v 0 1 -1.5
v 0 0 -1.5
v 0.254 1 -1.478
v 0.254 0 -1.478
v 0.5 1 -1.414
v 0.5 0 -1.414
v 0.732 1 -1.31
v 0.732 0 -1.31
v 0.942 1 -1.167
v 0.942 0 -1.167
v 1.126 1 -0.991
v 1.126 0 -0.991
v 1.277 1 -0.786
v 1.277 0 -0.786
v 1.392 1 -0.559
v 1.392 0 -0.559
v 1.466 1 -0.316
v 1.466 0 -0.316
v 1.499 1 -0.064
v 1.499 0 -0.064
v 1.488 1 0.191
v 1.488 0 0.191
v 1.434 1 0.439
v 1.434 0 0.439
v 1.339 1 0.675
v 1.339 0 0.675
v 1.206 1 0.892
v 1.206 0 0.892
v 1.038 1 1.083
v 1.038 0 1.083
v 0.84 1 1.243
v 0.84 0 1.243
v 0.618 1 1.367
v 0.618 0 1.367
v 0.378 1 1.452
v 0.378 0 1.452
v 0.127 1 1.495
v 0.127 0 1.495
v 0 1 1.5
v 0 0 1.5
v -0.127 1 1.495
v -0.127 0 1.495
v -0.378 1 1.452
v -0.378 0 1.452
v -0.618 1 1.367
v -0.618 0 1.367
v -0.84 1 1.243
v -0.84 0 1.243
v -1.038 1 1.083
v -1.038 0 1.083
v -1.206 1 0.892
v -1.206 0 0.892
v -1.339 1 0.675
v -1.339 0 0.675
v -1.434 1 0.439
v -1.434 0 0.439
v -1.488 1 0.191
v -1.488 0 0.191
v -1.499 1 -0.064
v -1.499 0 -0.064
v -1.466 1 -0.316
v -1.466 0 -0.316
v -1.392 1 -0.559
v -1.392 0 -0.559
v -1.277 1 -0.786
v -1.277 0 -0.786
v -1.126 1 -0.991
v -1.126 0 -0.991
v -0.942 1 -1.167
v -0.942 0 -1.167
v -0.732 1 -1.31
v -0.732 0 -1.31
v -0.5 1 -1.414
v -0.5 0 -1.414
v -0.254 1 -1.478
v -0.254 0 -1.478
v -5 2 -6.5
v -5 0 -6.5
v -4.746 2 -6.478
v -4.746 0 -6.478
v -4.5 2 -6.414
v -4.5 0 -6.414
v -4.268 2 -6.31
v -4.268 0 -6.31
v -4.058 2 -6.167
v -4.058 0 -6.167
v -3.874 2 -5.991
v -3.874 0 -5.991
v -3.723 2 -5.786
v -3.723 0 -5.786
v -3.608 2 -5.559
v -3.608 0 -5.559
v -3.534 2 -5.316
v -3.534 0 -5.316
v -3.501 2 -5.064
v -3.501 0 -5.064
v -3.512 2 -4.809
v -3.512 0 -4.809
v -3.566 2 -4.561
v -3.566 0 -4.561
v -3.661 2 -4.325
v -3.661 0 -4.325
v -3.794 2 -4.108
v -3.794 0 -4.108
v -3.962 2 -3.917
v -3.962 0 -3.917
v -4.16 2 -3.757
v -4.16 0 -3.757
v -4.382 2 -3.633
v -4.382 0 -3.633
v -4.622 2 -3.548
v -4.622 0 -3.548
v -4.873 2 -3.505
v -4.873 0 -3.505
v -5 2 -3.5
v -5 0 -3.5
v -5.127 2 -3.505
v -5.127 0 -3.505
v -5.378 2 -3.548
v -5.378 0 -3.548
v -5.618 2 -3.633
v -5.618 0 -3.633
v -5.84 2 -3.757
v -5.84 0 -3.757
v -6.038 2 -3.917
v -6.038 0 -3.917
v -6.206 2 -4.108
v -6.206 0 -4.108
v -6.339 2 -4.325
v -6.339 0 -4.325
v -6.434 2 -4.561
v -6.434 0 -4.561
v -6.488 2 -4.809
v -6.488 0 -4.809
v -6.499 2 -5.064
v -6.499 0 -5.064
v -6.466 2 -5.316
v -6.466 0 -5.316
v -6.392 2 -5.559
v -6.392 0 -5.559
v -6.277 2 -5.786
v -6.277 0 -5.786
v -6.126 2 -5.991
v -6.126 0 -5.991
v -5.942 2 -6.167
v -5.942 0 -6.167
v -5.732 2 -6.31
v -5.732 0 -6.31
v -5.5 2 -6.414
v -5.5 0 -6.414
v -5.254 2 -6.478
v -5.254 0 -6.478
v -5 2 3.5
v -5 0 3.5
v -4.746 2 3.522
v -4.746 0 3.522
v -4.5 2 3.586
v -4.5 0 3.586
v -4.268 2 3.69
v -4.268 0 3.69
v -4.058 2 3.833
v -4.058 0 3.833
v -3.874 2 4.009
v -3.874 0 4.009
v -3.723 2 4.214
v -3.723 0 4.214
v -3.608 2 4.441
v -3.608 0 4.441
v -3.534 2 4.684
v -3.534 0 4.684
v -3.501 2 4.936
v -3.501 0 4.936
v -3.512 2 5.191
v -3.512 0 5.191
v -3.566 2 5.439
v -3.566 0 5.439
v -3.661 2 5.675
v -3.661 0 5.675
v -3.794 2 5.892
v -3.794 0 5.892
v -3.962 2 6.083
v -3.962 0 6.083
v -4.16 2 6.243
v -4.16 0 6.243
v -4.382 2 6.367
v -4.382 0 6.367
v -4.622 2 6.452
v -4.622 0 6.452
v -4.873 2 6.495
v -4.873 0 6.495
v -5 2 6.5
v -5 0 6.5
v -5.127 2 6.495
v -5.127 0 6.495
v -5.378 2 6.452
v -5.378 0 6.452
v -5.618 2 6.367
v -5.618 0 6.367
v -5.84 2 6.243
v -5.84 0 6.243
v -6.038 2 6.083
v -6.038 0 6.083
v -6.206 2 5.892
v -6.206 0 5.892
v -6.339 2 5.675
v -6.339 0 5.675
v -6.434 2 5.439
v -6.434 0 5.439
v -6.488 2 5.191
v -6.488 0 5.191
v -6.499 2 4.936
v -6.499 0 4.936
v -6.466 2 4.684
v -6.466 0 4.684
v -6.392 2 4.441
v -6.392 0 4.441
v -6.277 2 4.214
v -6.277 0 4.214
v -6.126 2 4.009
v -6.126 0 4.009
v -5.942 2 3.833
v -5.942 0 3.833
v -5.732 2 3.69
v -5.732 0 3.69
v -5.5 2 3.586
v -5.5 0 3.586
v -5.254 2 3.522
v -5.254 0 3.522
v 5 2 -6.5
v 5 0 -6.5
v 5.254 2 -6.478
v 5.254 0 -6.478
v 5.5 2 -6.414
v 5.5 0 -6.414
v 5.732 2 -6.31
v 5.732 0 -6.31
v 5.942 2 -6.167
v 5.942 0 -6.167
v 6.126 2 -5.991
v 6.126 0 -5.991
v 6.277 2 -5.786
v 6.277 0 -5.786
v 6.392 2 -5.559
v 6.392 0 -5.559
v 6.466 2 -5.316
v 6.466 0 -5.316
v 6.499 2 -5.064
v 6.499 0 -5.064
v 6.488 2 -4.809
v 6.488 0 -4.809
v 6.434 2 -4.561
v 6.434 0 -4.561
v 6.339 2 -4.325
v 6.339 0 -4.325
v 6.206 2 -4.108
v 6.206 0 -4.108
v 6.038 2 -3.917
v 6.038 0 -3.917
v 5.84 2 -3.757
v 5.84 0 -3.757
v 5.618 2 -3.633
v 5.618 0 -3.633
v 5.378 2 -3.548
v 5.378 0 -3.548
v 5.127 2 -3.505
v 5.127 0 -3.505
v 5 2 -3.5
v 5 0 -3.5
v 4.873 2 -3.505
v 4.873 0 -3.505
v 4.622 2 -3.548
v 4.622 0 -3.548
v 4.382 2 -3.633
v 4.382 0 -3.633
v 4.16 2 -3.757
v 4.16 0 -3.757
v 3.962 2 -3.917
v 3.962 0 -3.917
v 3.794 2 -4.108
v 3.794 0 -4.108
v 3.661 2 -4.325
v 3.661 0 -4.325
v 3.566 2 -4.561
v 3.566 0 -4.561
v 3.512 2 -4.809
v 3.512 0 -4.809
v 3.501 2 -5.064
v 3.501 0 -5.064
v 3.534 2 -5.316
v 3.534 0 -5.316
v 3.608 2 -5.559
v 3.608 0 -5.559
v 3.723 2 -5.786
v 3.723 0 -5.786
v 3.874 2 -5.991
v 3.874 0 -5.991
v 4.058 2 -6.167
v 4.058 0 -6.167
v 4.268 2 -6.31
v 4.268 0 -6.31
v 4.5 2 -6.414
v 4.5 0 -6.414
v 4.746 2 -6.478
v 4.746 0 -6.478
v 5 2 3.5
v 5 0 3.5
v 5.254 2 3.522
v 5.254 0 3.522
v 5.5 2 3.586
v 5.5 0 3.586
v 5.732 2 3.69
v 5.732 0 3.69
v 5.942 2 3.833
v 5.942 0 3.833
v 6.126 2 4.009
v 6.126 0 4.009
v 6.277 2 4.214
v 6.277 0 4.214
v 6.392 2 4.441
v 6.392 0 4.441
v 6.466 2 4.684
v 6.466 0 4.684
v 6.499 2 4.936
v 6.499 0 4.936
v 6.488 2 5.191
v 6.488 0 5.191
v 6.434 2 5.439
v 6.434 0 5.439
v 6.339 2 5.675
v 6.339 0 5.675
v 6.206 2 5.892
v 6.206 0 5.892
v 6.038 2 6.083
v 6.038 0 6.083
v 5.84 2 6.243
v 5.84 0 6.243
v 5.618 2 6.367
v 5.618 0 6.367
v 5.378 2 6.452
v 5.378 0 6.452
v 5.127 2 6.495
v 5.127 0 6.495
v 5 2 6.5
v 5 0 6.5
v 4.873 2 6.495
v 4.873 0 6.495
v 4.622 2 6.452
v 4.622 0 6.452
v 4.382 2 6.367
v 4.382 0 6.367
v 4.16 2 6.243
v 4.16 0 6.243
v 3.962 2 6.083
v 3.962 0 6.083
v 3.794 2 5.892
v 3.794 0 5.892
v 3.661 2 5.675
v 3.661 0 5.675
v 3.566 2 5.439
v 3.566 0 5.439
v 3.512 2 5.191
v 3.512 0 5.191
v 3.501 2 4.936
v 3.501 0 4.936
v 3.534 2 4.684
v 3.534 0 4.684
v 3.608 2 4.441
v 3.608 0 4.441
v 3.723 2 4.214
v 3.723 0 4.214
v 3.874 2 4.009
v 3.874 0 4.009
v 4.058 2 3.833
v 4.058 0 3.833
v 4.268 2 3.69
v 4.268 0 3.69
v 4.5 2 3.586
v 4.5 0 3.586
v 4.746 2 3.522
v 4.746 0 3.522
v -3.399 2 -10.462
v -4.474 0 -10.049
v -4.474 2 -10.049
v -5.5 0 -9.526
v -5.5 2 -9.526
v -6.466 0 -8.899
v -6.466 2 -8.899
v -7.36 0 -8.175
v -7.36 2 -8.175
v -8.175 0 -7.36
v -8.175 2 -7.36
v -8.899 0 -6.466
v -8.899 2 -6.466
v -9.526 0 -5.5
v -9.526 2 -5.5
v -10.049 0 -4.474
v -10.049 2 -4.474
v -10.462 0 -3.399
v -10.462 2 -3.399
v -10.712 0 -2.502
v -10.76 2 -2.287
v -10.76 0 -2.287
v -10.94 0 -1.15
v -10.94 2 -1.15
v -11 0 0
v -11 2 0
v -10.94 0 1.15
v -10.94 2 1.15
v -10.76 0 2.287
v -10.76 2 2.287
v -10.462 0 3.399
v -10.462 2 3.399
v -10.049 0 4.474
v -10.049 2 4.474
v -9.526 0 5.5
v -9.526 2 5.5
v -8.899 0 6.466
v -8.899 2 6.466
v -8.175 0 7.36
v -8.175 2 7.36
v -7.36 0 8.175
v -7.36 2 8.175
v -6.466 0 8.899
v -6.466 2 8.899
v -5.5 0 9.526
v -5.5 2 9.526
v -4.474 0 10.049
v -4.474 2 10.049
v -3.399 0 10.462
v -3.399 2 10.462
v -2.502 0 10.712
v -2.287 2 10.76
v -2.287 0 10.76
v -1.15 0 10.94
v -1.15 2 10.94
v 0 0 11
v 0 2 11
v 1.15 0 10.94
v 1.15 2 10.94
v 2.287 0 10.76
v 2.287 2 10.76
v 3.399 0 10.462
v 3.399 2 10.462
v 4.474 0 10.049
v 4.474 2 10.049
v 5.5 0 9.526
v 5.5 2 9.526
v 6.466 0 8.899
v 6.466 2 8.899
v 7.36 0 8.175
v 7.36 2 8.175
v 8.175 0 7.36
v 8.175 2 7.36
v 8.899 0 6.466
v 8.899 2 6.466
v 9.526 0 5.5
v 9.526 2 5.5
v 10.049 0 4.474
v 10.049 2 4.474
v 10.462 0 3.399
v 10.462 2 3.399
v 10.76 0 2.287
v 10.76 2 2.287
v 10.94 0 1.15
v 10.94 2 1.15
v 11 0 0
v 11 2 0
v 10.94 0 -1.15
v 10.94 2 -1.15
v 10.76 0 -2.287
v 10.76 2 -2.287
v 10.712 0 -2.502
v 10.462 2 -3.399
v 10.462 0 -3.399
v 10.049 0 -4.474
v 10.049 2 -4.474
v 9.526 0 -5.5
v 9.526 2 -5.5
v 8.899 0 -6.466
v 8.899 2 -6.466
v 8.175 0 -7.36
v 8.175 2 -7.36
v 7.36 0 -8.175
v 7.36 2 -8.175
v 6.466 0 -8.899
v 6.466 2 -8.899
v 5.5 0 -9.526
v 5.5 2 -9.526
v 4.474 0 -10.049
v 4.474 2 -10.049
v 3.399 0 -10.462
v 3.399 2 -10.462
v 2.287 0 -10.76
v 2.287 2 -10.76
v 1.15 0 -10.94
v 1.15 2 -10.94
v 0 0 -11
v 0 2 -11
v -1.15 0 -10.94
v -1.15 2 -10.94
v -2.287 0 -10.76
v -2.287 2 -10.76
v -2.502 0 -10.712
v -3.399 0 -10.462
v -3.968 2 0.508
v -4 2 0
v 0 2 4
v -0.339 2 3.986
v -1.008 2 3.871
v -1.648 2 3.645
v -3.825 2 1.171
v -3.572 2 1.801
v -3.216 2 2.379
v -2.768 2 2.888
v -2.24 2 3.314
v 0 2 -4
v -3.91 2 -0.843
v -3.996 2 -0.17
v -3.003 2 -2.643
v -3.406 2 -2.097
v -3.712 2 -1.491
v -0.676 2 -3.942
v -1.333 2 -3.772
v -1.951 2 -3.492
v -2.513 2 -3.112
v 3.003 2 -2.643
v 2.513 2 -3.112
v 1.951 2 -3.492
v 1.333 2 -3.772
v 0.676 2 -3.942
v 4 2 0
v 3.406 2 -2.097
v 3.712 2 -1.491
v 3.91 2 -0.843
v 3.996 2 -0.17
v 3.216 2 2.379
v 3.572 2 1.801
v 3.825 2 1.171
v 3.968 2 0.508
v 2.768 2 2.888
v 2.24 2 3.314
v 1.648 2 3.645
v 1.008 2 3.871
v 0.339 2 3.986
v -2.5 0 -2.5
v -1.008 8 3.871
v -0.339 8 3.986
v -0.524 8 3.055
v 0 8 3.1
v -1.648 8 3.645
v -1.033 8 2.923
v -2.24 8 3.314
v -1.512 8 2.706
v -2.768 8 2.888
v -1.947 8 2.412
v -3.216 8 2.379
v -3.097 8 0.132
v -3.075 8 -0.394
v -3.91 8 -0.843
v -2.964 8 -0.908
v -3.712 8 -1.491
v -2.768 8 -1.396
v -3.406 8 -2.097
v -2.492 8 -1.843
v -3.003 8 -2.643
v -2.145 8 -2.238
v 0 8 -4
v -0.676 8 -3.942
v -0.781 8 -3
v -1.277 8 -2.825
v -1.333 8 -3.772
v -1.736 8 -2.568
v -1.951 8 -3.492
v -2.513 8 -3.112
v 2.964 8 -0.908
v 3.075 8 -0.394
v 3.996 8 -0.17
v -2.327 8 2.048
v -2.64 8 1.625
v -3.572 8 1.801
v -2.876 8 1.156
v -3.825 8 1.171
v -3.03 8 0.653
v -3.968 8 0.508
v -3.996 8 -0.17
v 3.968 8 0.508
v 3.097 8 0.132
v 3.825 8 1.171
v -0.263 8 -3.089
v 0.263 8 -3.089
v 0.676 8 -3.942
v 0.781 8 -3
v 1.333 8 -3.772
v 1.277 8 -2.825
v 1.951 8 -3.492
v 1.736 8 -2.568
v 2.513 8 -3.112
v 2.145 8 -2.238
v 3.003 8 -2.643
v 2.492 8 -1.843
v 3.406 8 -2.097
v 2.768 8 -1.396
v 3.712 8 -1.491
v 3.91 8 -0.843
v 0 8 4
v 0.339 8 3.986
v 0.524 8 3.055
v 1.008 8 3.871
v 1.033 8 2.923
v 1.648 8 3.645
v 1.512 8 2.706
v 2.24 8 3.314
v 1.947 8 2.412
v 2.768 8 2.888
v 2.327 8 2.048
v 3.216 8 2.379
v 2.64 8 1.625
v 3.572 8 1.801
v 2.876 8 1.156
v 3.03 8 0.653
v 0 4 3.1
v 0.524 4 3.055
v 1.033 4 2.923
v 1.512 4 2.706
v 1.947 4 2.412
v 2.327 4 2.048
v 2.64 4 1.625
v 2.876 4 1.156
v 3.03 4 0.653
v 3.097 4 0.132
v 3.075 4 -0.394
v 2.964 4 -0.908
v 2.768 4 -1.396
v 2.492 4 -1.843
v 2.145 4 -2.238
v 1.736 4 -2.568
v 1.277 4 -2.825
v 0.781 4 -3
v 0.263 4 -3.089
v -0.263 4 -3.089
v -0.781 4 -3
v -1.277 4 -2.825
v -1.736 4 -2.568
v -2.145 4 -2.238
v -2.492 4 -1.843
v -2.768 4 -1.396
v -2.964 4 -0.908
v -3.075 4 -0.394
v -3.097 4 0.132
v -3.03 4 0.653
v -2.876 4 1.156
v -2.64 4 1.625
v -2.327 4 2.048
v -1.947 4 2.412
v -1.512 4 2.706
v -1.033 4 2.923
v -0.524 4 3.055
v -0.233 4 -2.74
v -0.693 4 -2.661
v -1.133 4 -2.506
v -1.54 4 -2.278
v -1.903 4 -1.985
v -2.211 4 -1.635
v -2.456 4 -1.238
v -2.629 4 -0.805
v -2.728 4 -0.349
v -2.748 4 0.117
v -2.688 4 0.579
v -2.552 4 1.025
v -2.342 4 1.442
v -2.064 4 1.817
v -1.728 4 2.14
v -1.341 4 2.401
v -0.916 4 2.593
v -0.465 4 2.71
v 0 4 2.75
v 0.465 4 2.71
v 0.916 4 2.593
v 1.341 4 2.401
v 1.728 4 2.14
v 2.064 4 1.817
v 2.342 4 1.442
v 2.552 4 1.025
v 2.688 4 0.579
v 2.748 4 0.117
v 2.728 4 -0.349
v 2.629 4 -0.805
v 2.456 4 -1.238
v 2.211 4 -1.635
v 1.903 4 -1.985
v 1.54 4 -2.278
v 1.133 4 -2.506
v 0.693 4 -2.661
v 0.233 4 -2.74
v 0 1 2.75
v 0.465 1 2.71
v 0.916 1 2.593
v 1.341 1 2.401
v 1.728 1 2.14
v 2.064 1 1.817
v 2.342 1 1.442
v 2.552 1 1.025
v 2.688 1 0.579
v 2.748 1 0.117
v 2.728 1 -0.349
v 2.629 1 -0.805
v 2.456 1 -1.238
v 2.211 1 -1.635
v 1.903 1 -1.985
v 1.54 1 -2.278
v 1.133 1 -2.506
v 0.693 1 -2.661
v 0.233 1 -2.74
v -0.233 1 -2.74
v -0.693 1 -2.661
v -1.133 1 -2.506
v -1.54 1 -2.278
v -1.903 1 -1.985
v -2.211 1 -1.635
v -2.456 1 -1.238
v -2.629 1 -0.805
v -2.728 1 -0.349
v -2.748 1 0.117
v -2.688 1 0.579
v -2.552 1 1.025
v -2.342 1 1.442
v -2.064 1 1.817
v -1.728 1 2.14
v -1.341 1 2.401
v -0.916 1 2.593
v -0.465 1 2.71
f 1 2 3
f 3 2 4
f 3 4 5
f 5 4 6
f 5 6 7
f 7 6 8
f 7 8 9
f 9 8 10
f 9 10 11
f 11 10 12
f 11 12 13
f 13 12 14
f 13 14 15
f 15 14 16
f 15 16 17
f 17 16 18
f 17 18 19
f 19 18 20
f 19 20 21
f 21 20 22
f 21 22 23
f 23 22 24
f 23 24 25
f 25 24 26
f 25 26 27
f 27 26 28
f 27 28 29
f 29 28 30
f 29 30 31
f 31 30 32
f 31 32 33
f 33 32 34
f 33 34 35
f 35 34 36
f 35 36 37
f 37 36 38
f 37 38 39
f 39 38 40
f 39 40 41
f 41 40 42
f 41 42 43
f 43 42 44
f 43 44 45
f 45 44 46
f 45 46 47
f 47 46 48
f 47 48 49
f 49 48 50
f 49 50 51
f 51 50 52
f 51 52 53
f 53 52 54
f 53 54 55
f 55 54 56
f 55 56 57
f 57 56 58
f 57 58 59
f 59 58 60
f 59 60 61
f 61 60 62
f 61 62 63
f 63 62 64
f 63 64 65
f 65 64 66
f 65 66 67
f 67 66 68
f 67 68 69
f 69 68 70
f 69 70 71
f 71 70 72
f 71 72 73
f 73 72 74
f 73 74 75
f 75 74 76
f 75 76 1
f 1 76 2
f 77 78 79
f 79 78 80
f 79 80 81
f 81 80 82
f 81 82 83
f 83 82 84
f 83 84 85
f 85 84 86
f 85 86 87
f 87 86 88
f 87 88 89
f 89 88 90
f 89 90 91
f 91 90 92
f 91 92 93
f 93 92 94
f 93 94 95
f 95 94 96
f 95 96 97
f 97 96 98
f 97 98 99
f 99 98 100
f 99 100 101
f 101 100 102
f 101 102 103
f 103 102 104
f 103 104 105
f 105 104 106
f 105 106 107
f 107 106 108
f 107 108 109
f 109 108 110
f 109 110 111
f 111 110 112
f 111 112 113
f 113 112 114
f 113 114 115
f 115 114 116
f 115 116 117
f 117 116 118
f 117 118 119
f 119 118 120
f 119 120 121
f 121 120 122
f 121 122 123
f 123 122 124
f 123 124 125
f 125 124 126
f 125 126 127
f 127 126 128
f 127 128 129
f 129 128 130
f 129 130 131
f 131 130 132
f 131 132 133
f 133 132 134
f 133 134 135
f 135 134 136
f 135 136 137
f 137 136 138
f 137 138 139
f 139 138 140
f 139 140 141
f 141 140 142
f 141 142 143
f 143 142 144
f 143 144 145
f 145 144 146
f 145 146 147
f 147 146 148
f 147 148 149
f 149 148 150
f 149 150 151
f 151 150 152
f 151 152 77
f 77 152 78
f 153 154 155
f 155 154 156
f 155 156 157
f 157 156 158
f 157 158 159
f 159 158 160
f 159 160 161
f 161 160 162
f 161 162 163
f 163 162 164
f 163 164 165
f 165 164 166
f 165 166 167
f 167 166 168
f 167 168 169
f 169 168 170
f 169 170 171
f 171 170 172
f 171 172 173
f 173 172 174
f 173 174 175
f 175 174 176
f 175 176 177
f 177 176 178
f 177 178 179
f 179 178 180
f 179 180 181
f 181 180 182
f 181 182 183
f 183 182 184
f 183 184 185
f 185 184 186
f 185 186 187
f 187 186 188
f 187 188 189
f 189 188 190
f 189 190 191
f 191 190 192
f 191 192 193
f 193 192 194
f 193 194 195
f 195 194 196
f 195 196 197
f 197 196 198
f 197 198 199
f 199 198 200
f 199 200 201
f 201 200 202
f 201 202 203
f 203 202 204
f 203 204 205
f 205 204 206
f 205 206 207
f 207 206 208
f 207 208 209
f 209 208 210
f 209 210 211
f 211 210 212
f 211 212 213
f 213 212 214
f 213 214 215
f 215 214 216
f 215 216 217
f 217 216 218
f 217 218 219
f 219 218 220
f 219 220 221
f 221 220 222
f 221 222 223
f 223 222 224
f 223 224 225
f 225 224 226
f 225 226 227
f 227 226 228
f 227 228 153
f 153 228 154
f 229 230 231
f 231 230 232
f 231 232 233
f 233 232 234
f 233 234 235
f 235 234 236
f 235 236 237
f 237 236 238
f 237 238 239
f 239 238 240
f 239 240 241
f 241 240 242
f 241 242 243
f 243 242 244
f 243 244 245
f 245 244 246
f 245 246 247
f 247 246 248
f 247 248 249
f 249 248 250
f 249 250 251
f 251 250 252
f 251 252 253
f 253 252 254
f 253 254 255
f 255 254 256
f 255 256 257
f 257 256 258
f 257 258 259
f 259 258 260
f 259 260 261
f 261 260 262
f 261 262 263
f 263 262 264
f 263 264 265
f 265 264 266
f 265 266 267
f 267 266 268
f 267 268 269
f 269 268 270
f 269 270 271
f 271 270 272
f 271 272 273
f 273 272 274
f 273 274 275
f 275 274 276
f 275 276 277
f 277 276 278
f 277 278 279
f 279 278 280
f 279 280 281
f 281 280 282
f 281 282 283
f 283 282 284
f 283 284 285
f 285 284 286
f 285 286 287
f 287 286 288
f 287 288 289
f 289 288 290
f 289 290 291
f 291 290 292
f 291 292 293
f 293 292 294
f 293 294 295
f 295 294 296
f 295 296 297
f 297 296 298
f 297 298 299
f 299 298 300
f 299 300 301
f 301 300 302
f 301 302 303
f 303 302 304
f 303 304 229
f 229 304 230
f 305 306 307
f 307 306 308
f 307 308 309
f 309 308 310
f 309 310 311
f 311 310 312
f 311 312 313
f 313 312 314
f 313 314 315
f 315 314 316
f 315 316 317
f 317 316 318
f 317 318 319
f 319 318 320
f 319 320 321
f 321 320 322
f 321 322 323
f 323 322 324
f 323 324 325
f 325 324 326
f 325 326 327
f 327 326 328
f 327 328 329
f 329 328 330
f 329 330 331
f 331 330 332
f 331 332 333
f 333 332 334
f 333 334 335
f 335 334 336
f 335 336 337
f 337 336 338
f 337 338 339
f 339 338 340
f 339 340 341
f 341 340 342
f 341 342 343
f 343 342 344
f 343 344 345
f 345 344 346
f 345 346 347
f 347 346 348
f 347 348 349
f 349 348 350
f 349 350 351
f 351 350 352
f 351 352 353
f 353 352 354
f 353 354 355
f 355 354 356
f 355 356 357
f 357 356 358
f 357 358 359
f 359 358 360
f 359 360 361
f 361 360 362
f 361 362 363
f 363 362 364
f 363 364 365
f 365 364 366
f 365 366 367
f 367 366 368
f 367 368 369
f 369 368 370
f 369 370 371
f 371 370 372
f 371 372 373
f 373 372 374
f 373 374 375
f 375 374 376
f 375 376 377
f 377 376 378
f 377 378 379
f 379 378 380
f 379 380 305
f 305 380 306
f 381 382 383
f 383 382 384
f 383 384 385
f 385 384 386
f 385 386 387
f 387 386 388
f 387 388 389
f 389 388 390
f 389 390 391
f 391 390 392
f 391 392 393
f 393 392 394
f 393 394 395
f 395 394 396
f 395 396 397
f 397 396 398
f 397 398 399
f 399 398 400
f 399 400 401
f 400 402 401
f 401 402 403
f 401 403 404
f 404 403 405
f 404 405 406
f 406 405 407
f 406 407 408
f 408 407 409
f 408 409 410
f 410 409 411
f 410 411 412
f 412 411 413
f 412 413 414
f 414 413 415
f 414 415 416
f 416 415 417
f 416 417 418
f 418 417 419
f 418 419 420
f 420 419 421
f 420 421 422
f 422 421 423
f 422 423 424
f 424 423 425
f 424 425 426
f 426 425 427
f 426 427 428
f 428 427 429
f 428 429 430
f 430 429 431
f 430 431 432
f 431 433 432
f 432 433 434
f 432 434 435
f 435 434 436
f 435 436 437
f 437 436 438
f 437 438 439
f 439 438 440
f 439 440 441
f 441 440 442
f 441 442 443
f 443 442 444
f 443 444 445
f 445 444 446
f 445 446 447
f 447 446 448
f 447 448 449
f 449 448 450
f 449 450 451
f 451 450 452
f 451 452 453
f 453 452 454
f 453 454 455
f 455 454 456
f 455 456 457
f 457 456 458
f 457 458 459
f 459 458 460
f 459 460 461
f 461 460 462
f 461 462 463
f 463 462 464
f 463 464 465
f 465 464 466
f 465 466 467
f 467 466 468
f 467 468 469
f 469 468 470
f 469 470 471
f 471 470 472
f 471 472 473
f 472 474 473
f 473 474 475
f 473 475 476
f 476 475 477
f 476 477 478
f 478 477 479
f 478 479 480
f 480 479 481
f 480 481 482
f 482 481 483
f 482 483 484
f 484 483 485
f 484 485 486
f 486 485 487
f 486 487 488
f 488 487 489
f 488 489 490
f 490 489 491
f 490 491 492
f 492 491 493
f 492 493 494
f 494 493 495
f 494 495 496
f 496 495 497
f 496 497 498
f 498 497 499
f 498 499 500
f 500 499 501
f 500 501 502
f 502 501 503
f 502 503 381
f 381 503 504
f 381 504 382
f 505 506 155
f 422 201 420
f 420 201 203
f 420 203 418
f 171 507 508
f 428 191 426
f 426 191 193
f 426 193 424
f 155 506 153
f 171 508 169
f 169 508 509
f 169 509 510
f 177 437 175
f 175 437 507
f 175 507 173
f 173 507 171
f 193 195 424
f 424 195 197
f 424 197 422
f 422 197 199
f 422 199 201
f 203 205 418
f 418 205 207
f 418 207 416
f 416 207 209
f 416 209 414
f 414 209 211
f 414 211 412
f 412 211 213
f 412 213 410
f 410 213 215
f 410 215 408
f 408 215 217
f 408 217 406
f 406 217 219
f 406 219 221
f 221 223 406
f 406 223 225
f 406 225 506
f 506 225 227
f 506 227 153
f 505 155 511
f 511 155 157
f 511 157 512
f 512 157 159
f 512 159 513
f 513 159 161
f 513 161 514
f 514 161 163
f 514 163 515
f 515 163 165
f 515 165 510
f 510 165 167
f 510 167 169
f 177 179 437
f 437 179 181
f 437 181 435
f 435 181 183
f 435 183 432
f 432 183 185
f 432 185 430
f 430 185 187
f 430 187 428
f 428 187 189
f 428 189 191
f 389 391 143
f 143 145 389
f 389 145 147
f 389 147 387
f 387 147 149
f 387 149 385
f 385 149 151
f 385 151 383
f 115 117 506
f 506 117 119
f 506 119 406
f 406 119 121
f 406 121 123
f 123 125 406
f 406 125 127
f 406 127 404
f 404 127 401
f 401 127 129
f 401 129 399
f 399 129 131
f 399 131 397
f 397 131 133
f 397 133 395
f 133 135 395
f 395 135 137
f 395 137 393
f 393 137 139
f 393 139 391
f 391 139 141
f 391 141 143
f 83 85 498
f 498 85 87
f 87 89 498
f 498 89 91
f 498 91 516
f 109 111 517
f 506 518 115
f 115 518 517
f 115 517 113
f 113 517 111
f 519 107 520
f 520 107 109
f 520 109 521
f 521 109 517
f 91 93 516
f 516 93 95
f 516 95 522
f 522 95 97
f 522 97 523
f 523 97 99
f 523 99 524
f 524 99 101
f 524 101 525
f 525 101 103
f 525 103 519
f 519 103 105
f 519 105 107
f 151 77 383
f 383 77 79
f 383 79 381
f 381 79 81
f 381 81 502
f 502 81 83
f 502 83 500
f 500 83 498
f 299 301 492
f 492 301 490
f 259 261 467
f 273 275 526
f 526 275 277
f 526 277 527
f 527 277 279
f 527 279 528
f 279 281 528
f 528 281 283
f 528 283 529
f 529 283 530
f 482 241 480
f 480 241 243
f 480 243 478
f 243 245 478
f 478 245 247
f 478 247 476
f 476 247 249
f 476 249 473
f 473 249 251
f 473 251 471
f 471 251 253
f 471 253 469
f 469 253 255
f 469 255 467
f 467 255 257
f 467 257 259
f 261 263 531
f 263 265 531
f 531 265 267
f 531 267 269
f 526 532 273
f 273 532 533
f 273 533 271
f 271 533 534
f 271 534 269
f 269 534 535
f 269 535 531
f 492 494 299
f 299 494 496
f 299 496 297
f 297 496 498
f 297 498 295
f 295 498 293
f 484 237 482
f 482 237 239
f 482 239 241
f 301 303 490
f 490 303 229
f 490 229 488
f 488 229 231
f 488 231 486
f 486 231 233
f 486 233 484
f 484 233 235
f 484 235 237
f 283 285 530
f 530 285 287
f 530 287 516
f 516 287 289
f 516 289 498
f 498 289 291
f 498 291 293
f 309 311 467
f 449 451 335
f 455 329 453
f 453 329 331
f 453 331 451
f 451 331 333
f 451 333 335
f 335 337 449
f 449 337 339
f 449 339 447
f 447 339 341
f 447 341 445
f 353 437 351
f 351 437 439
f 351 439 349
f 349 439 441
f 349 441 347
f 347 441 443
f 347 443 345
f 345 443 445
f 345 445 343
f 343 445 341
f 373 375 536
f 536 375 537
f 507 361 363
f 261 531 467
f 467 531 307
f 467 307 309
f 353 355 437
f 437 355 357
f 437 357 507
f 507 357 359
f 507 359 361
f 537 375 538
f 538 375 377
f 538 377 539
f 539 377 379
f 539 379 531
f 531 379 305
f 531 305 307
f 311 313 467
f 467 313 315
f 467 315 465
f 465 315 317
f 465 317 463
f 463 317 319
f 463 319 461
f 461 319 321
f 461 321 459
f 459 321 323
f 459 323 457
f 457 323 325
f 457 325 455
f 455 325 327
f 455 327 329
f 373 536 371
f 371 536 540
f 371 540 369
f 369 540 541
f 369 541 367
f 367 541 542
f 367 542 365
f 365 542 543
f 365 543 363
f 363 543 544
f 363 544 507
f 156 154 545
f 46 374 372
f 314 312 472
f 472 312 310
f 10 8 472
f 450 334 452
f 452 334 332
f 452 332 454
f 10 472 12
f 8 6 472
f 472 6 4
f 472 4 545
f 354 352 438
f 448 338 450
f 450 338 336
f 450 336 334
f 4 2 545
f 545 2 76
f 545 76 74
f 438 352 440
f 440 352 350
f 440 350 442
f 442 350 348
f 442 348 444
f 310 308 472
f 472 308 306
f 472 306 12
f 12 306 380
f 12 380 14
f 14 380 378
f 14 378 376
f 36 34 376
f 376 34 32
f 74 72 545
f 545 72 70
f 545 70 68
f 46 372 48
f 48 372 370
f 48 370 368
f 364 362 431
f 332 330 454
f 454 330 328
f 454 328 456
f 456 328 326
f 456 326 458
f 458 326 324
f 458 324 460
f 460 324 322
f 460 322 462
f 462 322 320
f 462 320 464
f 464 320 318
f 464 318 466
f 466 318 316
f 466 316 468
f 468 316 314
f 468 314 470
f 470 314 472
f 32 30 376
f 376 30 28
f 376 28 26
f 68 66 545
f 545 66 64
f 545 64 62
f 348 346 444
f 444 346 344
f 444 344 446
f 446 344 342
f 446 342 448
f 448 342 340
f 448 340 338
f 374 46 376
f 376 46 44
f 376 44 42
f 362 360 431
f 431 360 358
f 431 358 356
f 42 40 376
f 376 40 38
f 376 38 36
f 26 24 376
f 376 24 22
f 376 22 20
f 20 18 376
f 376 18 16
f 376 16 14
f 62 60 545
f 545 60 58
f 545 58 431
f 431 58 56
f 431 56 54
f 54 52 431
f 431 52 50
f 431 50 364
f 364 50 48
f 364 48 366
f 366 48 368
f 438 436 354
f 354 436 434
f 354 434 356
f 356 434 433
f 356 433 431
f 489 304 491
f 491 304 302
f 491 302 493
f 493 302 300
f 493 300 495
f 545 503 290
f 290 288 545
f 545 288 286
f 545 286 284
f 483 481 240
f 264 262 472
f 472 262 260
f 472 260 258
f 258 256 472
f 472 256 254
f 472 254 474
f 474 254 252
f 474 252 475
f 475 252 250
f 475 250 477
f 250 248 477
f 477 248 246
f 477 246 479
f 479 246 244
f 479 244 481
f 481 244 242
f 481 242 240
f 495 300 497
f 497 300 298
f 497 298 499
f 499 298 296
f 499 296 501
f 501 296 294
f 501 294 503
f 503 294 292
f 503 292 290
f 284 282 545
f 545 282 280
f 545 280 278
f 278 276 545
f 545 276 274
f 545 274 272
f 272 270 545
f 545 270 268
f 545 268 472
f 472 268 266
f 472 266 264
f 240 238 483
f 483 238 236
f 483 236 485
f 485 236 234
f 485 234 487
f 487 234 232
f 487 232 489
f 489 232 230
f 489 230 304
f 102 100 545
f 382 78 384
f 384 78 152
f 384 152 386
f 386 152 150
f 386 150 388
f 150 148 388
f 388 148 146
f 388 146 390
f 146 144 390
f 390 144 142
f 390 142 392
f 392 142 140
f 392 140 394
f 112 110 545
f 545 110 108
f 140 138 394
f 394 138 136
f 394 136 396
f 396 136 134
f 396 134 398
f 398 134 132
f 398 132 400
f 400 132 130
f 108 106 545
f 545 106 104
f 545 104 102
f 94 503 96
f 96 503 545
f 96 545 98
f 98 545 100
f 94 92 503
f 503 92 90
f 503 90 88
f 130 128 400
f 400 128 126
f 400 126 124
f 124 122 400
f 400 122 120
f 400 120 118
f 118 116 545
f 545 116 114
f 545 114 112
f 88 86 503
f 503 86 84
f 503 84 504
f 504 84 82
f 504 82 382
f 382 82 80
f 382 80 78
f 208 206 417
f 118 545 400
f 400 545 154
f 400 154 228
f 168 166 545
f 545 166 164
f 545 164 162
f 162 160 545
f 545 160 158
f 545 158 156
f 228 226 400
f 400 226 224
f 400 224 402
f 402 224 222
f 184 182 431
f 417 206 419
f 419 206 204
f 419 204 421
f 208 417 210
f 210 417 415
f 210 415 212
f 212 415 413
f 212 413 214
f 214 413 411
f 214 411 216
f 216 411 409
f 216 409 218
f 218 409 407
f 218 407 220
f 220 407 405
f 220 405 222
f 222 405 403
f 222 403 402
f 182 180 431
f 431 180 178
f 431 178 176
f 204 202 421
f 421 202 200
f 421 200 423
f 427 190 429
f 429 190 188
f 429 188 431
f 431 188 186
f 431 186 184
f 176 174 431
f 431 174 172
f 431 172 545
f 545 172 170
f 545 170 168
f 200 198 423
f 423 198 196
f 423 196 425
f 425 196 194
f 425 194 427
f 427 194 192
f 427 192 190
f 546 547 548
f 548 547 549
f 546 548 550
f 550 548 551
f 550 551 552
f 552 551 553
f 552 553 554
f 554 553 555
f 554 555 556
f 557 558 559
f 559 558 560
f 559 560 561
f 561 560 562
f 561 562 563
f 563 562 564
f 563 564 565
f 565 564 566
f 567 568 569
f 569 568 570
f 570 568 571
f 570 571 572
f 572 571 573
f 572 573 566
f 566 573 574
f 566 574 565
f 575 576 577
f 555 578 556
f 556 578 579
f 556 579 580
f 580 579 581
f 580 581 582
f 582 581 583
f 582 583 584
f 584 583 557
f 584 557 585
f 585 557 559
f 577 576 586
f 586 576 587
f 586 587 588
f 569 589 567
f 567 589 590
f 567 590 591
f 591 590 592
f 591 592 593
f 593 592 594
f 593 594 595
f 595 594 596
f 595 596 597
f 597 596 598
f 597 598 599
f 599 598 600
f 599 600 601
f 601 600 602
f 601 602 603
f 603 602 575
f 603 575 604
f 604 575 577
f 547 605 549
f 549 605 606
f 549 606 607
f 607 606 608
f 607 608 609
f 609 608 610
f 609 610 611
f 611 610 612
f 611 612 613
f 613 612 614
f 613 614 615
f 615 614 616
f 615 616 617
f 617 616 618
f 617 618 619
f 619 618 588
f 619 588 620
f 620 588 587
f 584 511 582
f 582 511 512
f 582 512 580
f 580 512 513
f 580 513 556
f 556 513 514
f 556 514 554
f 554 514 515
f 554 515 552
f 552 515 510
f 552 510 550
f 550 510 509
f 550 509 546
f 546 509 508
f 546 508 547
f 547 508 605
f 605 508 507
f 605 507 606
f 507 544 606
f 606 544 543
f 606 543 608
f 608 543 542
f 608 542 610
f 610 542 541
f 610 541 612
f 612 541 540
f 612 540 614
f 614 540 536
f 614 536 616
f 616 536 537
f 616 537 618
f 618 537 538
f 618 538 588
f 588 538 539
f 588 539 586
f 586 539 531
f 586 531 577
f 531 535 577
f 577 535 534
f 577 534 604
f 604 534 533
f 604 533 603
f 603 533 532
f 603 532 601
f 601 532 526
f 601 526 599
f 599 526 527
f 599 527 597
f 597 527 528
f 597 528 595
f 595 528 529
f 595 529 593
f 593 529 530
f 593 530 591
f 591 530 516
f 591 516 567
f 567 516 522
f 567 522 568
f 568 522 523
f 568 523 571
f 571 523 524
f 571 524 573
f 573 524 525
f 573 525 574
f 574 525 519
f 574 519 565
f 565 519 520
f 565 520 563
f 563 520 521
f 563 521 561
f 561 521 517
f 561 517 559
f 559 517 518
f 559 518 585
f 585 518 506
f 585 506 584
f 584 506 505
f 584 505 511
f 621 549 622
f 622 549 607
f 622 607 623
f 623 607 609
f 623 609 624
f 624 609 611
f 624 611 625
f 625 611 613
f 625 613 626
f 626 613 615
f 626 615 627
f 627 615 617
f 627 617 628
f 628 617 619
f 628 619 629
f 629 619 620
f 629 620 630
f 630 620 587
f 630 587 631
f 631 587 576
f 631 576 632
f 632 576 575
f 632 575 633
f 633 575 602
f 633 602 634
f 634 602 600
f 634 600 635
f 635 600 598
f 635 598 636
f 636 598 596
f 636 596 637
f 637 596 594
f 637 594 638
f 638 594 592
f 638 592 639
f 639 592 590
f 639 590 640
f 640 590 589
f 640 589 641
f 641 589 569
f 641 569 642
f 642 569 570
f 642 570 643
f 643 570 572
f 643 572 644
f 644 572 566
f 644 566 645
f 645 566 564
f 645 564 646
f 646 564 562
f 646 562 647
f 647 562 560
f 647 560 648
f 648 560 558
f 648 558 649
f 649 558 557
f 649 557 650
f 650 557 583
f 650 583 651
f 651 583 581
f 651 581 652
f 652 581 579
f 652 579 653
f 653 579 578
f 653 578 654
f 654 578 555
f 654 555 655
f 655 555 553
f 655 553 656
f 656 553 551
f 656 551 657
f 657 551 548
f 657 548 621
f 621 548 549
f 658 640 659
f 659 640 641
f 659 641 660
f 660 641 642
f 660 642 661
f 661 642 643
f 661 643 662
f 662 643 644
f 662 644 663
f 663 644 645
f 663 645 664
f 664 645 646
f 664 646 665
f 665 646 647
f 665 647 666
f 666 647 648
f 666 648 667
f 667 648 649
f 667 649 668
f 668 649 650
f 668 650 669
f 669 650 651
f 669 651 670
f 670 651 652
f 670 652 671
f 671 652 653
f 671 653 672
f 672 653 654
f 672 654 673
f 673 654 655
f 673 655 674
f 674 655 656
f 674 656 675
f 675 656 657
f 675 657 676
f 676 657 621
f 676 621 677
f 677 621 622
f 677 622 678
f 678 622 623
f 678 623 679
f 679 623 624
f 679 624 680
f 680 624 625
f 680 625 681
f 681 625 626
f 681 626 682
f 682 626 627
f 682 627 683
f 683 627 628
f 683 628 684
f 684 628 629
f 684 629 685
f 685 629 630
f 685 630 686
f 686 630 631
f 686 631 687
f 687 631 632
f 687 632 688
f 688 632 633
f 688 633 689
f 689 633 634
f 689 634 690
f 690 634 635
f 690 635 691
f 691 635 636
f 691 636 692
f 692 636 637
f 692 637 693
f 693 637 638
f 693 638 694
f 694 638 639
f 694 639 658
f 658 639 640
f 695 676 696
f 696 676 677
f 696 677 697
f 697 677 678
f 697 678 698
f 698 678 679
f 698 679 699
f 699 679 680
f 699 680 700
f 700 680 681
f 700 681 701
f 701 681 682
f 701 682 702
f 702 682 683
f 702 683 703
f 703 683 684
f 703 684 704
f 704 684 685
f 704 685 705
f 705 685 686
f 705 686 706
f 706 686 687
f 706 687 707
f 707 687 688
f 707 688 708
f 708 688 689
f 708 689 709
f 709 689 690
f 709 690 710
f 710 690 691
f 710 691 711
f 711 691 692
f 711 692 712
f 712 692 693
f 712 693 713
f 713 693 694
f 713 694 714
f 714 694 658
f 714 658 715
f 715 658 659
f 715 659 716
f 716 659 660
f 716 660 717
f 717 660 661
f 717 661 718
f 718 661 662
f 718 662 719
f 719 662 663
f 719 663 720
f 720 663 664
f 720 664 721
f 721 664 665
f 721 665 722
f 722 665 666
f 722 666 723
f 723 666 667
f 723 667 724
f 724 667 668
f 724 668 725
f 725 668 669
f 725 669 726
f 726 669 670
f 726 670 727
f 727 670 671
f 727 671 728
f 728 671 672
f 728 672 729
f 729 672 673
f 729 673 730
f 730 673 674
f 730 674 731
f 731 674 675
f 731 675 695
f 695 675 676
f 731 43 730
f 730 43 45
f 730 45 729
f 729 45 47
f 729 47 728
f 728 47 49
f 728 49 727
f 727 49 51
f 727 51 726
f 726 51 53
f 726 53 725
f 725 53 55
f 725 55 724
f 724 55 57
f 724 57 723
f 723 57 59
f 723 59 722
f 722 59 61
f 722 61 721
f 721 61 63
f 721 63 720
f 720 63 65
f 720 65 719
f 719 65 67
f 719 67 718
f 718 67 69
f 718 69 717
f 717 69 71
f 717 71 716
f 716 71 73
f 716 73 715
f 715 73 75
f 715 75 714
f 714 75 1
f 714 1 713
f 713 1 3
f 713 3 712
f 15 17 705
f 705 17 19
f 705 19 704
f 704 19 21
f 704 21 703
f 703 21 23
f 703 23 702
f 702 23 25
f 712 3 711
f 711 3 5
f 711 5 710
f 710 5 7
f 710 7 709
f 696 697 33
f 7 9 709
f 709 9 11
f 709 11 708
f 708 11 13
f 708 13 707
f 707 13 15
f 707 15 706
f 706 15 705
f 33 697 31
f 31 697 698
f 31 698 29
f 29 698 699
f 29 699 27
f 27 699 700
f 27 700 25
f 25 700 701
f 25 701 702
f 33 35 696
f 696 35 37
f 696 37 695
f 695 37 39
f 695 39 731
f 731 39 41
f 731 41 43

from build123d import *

# Parameters (mm, degrees)
SKETCH_1_R          = 11
SKETCH_1_R_2        = 1.5
EXTRUDE_4_DEPTH     = 2
SKETCH_2_R          = 4
EXTRUDE_5_DEPTH     = 6
SKETCH_3_R          = 3.1
CUT_EXTRUDE_1_DEPTH = 4
SKETCH_4_R          = 2.75
CUT_EXTRUDE_2_DEPTH = 3


with BuildPart() as part:
    # 草图1 → 凸台-拉伸4 (new body)
    with BuildSketch(Plane(origin=(0, 0, 0), x_dir=(1, 0, 0), z_dir=(0, 1, 0))):
        with Locations(Location((0, 0, 0), (0, 0, 270))):
            Circle(SKETCH_1_R)
        with Locations(Location((0, 0, 0), (0, 0, 270))):
            Circle(SKETCH_1_R_2, mode=Mode.SUBTRACT)
        with Locations(Location((-5, 5, 0), (0, 0, 270))):
            Circle(SKETCH_1_R_2, mode=Mode.SUBTRACT)
        with Locations(Location((5, 5, 0), (0, 0, 270))):
            Circle(SKETCH_1_R_2, mode=Mode.SUBTRACT)
        with Locations(Location((5, -5, 0), (0, 0, 270))):
            Circle(SKETCH_1_R_2, mode=Mode.SUBTRACT)
        with Locations(Location((-5, -5, 0), (0, 0, 270))):
            Circle(SKETCH_1_R_2, mode=Mode.SUBTRACT)
    extrude(amount=EXTRUDE_4_DEPTH)

    # 草图2 → 凸台-拉伸5 (add)
    with BuildSketch(Plane(origin=(0, 2, 0), x_dir=(1, 0, 0), z_dir=(0, 1, 0))):
        with Locations(Location((0, 0, 0), (0, 0, 270))):
            Circle(SKETCH_2_R)
    extrude(amount=EXTRUDE_5_DEPTH)

    # 草图3 → 切除-拉伸1 (cut)
    with BuildSketch(Plane(origin=(0, 8, 0), x_dir=(1, 0, 0), z_dir=(0, 1, 0))):
        with Locations(Location((0, 0, 0), (0, 0, 270))):
            Circle(SKETCH_3_R)
    extrude(amount=-CUT_EXTRUDE_1_DEPTH, mode=Mode.SUBTRACT)

    # 草图4 → 切除-拉伸2 (cut)
    with BuildSketch(Plane(origin=(0, 4, 0), x_dir=(1, 0, 0), z_dir=(0, 1, 0))):
        with Locations(Location((0, 0, 0), (0, 0, 270))):
            Circle(SKETCH_4_R)
    extrude(amount=-CUT_EXTRUDE_2_DEPTH, mode=Mode.SUBTRACT)


solid = part.part
